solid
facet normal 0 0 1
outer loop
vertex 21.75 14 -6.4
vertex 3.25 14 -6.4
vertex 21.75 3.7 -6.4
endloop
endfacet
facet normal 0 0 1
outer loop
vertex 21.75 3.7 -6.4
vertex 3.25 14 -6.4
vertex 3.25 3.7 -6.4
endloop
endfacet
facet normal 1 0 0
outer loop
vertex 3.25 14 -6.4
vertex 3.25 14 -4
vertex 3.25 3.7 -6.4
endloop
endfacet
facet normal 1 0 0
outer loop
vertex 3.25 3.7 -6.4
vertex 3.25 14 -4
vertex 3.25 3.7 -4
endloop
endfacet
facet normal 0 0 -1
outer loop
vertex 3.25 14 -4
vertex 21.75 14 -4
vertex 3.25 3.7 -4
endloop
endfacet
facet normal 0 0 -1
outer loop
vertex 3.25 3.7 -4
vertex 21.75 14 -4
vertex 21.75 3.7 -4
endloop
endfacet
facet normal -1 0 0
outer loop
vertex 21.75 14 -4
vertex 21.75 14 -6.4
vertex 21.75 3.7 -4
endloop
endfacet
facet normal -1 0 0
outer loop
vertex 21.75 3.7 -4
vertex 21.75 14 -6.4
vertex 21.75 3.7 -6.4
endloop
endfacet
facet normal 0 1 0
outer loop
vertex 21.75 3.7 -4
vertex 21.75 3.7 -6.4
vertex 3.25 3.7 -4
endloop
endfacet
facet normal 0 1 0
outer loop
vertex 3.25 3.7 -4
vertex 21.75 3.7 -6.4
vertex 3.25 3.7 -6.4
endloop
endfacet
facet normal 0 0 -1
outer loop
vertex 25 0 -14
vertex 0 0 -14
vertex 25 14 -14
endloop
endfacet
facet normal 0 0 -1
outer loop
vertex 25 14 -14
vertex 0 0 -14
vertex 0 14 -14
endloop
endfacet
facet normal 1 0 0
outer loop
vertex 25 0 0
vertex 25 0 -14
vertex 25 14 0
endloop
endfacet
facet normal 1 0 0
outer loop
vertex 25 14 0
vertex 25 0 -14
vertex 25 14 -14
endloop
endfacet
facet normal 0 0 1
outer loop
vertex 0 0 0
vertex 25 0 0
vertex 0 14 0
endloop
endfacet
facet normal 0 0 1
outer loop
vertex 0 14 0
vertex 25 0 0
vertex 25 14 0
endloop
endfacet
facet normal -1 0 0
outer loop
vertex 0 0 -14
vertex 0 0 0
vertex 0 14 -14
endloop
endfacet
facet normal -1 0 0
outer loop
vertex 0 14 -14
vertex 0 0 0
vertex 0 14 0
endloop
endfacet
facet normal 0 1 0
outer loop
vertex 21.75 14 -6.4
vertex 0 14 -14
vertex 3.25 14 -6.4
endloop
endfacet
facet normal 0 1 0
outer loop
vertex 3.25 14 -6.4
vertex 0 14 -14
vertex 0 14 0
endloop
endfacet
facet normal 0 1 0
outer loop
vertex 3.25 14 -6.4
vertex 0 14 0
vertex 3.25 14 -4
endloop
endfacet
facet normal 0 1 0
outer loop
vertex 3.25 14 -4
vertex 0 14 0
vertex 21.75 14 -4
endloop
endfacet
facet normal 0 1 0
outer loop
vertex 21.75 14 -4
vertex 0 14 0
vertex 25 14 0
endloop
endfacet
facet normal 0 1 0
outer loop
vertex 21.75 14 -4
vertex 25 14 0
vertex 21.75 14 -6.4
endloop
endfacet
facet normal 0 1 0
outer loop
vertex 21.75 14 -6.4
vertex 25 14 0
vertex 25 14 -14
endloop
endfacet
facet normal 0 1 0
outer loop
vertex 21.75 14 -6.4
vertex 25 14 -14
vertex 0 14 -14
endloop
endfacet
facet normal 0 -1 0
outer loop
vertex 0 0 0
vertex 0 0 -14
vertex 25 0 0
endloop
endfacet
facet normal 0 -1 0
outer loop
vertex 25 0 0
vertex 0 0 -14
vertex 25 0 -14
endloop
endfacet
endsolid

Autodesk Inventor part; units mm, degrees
ref_plane "YZ Plane" through (0, 0, 0) normal (1, 0, 0) x (0, 1, 0)
ref_plane "XZ Plane" through (0, 0, 0) normal (0, 1, 0) x (-1, 0, 0)
ref_plane "XY Plane" through (0, 0, 0) normal (0, 0, 1) x (1, 0, 0)
sketch "Sketch1" plane through (0, 0, 0) normal (0, 1, 0) x (-1, 0, 0)
  line L0 (0, 0) -> (-25, 0)
  line L1 (-25, 0) -> (-25, -14)
  line L2 (-25, -14) -> (0, -14)
  line L3 (0, -14) -> (0, 0)
  dimension "d0" = 25
  dimension "d1" = 14
extrude "Extrusion1" add sketch "Sketch1" along normal blind 14
sketch "Sketch2" plane through (0, 14, 0) normal (0, 1, 0) x (1, 0, 0)
  line L0 (3.25, 4) -> (21.75, 4)
  line L1 (21.75, 4) -> (21.75, 6.4)
  line L2 (21.75, 6.4) -> (3.25, 6.4)
  line L3 (3.25, 6.4) -> (3.25, 4)
  point P0 (0, 0)
  dimension "d6" = 18.5
  dimension "d7" = 2.4
extrude "Extrusion2" cut sketch "Sketch2" against normal blind 10.3
properties part number "ServoOverServo"
